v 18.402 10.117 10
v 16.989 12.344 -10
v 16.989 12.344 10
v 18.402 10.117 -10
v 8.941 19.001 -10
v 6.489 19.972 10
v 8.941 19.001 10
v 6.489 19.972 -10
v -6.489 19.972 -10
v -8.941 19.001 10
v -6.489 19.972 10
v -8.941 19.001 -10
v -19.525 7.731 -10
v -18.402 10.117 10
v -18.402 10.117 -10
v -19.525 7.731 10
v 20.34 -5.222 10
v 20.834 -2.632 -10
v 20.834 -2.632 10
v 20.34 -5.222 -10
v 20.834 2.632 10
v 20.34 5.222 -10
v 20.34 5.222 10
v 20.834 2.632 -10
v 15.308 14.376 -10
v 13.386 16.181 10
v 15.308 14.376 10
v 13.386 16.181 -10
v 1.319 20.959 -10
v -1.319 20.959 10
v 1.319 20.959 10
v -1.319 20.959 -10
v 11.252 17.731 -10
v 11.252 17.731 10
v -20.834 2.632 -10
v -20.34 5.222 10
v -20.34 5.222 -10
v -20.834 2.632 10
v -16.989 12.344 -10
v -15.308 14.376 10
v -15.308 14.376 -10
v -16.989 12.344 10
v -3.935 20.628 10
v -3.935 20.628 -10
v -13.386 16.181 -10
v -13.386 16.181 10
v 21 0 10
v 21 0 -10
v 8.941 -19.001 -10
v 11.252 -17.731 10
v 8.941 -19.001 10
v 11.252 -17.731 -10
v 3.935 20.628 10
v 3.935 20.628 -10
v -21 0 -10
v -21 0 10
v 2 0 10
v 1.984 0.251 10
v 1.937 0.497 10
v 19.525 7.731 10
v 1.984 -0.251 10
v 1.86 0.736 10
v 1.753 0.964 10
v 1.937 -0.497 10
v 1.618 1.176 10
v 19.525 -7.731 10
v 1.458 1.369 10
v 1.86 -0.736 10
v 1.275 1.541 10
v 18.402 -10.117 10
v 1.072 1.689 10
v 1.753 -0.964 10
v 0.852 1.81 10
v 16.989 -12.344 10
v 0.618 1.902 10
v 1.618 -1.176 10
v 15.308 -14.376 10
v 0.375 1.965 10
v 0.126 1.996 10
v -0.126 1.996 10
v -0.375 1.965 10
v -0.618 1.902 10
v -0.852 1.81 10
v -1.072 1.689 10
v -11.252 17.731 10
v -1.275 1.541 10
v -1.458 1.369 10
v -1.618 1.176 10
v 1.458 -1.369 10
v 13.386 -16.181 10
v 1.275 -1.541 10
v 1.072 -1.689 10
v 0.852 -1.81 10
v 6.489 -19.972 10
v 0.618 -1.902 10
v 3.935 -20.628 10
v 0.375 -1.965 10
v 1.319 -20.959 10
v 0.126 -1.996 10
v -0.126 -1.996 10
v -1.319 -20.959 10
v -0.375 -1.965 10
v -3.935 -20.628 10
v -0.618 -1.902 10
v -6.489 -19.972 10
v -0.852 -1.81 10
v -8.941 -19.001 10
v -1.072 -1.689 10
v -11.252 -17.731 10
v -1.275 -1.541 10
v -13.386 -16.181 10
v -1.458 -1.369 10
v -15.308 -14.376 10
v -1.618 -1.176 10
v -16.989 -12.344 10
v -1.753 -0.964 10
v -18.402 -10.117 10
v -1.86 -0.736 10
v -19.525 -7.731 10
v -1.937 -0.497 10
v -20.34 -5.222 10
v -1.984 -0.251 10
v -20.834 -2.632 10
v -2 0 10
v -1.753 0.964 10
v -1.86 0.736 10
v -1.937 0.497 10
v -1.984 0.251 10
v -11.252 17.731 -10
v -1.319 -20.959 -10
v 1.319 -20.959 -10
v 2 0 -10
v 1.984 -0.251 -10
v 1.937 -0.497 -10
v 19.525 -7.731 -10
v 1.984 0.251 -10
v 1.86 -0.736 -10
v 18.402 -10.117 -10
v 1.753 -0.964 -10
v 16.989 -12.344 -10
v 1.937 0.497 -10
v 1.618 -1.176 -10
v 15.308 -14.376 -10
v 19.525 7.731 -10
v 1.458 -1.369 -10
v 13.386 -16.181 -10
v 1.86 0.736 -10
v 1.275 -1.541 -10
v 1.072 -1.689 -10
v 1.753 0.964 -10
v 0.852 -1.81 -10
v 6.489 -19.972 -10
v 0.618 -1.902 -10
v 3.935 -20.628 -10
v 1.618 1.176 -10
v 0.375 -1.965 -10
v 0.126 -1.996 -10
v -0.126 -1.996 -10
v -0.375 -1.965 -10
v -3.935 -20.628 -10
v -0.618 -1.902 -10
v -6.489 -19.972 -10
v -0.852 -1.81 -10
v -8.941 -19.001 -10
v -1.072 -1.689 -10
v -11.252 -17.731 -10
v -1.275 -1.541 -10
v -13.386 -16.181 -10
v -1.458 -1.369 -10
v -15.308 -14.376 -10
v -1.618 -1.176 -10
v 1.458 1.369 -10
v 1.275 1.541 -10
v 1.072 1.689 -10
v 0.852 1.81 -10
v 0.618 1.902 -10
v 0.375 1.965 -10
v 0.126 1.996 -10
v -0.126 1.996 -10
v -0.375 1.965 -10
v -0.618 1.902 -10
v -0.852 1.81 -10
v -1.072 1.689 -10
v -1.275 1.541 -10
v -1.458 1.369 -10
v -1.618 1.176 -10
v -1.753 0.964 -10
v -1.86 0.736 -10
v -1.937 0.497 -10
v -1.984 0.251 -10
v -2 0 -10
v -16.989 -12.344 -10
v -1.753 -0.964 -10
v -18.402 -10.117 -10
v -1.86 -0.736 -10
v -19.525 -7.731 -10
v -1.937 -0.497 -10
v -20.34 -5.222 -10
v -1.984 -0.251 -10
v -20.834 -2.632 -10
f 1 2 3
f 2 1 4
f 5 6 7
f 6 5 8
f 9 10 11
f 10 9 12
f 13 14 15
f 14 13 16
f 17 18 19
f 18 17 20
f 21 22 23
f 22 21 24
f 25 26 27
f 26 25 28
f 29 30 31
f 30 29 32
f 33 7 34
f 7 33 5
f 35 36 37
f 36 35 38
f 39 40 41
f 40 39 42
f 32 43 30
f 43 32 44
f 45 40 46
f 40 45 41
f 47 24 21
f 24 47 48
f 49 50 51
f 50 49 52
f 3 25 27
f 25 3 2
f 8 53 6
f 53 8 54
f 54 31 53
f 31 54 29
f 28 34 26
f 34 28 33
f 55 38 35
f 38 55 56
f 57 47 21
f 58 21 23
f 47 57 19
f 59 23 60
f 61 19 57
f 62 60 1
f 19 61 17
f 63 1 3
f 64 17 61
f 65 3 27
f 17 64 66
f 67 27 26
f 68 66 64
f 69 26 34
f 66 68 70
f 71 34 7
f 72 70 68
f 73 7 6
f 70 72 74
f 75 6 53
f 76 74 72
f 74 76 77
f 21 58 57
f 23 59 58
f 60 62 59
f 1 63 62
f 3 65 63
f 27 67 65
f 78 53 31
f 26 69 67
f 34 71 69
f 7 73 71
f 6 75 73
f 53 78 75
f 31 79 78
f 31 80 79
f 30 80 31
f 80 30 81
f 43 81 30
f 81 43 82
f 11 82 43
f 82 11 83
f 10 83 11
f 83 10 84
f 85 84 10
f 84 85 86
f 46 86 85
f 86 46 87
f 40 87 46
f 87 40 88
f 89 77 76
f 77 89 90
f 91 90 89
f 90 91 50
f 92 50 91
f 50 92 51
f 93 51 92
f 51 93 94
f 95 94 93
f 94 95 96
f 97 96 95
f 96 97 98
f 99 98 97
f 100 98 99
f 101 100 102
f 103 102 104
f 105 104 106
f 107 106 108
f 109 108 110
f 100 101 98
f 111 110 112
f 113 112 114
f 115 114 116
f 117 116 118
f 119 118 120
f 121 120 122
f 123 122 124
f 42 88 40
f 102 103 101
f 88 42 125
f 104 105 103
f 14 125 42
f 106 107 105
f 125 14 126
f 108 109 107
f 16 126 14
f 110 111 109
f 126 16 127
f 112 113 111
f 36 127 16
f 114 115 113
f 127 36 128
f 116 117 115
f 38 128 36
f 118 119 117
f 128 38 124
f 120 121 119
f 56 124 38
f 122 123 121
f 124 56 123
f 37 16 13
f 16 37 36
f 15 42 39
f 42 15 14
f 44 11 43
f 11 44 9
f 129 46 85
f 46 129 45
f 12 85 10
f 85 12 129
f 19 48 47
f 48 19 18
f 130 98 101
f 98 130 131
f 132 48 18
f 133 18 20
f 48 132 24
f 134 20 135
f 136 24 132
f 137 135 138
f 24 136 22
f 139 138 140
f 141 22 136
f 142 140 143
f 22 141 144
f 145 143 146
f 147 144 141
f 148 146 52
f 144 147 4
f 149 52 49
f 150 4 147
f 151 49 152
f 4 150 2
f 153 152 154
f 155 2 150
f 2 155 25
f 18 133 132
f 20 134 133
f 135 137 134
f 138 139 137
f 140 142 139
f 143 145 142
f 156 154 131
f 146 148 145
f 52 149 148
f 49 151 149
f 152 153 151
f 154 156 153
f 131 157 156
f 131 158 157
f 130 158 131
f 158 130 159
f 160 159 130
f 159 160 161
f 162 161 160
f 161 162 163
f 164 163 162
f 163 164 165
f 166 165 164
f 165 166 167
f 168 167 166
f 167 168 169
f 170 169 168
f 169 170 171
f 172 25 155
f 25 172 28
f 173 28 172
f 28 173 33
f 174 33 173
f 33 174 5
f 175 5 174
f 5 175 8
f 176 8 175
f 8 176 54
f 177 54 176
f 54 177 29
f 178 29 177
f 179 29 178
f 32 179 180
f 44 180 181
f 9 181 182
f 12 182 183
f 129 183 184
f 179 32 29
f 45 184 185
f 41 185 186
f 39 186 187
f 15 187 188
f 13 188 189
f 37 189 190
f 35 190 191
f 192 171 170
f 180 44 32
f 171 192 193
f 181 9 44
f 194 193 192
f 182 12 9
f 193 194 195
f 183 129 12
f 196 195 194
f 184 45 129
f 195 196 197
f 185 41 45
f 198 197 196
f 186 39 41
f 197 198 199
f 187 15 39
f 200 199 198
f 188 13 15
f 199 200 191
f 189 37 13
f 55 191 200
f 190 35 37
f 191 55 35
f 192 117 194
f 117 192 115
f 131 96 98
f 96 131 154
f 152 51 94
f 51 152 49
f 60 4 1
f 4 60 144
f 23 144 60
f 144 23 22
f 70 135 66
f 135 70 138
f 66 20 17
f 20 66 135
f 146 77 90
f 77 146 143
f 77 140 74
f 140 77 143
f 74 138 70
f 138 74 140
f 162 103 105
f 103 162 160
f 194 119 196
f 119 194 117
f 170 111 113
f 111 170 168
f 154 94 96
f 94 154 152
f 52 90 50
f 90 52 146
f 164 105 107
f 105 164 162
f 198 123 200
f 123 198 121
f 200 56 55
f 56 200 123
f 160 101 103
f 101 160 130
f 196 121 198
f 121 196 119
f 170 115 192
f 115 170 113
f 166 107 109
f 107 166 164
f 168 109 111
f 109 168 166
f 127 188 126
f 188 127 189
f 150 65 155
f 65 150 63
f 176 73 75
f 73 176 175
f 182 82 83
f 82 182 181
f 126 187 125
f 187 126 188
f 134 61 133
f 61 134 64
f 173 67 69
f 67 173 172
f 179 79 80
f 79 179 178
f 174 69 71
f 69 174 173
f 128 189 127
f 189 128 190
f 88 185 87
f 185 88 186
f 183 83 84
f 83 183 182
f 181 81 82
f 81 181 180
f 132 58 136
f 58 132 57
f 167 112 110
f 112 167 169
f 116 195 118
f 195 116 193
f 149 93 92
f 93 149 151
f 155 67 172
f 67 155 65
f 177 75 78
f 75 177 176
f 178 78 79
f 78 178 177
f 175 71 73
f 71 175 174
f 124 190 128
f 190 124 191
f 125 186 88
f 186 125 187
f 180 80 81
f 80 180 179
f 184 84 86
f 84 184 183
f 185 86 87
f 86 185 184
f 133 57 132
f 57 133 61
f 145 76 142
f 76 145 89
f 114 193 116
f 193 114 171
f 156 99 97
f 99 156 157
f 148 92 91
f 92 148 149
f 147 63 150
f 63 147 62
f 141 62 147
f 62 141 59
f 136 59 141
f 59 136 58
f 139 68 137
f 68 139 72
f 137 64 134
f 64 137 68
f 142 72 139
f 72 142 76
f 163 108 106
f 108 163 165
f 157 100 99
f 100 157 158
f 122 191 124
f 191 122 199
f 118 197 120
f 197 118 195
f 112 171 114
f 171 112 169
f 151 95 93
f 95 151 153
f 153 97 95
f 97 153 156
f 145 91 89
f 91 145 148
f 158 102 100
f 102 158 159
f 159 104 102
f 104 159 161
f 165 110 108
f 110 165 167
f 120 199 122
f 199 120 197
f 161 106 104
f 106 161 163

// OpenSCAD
$fn = 50;


difference() {
	union() {
		translate(v = [0, 0, -10.0000000000]) {
			cylinder(h = 20, r = 21.0000000000);
		}
	}
	union() {
		translate(v = [0, 0, -100.0000000000]) {
			cylinder(h = 200, r = 2);
		}
	}
}
